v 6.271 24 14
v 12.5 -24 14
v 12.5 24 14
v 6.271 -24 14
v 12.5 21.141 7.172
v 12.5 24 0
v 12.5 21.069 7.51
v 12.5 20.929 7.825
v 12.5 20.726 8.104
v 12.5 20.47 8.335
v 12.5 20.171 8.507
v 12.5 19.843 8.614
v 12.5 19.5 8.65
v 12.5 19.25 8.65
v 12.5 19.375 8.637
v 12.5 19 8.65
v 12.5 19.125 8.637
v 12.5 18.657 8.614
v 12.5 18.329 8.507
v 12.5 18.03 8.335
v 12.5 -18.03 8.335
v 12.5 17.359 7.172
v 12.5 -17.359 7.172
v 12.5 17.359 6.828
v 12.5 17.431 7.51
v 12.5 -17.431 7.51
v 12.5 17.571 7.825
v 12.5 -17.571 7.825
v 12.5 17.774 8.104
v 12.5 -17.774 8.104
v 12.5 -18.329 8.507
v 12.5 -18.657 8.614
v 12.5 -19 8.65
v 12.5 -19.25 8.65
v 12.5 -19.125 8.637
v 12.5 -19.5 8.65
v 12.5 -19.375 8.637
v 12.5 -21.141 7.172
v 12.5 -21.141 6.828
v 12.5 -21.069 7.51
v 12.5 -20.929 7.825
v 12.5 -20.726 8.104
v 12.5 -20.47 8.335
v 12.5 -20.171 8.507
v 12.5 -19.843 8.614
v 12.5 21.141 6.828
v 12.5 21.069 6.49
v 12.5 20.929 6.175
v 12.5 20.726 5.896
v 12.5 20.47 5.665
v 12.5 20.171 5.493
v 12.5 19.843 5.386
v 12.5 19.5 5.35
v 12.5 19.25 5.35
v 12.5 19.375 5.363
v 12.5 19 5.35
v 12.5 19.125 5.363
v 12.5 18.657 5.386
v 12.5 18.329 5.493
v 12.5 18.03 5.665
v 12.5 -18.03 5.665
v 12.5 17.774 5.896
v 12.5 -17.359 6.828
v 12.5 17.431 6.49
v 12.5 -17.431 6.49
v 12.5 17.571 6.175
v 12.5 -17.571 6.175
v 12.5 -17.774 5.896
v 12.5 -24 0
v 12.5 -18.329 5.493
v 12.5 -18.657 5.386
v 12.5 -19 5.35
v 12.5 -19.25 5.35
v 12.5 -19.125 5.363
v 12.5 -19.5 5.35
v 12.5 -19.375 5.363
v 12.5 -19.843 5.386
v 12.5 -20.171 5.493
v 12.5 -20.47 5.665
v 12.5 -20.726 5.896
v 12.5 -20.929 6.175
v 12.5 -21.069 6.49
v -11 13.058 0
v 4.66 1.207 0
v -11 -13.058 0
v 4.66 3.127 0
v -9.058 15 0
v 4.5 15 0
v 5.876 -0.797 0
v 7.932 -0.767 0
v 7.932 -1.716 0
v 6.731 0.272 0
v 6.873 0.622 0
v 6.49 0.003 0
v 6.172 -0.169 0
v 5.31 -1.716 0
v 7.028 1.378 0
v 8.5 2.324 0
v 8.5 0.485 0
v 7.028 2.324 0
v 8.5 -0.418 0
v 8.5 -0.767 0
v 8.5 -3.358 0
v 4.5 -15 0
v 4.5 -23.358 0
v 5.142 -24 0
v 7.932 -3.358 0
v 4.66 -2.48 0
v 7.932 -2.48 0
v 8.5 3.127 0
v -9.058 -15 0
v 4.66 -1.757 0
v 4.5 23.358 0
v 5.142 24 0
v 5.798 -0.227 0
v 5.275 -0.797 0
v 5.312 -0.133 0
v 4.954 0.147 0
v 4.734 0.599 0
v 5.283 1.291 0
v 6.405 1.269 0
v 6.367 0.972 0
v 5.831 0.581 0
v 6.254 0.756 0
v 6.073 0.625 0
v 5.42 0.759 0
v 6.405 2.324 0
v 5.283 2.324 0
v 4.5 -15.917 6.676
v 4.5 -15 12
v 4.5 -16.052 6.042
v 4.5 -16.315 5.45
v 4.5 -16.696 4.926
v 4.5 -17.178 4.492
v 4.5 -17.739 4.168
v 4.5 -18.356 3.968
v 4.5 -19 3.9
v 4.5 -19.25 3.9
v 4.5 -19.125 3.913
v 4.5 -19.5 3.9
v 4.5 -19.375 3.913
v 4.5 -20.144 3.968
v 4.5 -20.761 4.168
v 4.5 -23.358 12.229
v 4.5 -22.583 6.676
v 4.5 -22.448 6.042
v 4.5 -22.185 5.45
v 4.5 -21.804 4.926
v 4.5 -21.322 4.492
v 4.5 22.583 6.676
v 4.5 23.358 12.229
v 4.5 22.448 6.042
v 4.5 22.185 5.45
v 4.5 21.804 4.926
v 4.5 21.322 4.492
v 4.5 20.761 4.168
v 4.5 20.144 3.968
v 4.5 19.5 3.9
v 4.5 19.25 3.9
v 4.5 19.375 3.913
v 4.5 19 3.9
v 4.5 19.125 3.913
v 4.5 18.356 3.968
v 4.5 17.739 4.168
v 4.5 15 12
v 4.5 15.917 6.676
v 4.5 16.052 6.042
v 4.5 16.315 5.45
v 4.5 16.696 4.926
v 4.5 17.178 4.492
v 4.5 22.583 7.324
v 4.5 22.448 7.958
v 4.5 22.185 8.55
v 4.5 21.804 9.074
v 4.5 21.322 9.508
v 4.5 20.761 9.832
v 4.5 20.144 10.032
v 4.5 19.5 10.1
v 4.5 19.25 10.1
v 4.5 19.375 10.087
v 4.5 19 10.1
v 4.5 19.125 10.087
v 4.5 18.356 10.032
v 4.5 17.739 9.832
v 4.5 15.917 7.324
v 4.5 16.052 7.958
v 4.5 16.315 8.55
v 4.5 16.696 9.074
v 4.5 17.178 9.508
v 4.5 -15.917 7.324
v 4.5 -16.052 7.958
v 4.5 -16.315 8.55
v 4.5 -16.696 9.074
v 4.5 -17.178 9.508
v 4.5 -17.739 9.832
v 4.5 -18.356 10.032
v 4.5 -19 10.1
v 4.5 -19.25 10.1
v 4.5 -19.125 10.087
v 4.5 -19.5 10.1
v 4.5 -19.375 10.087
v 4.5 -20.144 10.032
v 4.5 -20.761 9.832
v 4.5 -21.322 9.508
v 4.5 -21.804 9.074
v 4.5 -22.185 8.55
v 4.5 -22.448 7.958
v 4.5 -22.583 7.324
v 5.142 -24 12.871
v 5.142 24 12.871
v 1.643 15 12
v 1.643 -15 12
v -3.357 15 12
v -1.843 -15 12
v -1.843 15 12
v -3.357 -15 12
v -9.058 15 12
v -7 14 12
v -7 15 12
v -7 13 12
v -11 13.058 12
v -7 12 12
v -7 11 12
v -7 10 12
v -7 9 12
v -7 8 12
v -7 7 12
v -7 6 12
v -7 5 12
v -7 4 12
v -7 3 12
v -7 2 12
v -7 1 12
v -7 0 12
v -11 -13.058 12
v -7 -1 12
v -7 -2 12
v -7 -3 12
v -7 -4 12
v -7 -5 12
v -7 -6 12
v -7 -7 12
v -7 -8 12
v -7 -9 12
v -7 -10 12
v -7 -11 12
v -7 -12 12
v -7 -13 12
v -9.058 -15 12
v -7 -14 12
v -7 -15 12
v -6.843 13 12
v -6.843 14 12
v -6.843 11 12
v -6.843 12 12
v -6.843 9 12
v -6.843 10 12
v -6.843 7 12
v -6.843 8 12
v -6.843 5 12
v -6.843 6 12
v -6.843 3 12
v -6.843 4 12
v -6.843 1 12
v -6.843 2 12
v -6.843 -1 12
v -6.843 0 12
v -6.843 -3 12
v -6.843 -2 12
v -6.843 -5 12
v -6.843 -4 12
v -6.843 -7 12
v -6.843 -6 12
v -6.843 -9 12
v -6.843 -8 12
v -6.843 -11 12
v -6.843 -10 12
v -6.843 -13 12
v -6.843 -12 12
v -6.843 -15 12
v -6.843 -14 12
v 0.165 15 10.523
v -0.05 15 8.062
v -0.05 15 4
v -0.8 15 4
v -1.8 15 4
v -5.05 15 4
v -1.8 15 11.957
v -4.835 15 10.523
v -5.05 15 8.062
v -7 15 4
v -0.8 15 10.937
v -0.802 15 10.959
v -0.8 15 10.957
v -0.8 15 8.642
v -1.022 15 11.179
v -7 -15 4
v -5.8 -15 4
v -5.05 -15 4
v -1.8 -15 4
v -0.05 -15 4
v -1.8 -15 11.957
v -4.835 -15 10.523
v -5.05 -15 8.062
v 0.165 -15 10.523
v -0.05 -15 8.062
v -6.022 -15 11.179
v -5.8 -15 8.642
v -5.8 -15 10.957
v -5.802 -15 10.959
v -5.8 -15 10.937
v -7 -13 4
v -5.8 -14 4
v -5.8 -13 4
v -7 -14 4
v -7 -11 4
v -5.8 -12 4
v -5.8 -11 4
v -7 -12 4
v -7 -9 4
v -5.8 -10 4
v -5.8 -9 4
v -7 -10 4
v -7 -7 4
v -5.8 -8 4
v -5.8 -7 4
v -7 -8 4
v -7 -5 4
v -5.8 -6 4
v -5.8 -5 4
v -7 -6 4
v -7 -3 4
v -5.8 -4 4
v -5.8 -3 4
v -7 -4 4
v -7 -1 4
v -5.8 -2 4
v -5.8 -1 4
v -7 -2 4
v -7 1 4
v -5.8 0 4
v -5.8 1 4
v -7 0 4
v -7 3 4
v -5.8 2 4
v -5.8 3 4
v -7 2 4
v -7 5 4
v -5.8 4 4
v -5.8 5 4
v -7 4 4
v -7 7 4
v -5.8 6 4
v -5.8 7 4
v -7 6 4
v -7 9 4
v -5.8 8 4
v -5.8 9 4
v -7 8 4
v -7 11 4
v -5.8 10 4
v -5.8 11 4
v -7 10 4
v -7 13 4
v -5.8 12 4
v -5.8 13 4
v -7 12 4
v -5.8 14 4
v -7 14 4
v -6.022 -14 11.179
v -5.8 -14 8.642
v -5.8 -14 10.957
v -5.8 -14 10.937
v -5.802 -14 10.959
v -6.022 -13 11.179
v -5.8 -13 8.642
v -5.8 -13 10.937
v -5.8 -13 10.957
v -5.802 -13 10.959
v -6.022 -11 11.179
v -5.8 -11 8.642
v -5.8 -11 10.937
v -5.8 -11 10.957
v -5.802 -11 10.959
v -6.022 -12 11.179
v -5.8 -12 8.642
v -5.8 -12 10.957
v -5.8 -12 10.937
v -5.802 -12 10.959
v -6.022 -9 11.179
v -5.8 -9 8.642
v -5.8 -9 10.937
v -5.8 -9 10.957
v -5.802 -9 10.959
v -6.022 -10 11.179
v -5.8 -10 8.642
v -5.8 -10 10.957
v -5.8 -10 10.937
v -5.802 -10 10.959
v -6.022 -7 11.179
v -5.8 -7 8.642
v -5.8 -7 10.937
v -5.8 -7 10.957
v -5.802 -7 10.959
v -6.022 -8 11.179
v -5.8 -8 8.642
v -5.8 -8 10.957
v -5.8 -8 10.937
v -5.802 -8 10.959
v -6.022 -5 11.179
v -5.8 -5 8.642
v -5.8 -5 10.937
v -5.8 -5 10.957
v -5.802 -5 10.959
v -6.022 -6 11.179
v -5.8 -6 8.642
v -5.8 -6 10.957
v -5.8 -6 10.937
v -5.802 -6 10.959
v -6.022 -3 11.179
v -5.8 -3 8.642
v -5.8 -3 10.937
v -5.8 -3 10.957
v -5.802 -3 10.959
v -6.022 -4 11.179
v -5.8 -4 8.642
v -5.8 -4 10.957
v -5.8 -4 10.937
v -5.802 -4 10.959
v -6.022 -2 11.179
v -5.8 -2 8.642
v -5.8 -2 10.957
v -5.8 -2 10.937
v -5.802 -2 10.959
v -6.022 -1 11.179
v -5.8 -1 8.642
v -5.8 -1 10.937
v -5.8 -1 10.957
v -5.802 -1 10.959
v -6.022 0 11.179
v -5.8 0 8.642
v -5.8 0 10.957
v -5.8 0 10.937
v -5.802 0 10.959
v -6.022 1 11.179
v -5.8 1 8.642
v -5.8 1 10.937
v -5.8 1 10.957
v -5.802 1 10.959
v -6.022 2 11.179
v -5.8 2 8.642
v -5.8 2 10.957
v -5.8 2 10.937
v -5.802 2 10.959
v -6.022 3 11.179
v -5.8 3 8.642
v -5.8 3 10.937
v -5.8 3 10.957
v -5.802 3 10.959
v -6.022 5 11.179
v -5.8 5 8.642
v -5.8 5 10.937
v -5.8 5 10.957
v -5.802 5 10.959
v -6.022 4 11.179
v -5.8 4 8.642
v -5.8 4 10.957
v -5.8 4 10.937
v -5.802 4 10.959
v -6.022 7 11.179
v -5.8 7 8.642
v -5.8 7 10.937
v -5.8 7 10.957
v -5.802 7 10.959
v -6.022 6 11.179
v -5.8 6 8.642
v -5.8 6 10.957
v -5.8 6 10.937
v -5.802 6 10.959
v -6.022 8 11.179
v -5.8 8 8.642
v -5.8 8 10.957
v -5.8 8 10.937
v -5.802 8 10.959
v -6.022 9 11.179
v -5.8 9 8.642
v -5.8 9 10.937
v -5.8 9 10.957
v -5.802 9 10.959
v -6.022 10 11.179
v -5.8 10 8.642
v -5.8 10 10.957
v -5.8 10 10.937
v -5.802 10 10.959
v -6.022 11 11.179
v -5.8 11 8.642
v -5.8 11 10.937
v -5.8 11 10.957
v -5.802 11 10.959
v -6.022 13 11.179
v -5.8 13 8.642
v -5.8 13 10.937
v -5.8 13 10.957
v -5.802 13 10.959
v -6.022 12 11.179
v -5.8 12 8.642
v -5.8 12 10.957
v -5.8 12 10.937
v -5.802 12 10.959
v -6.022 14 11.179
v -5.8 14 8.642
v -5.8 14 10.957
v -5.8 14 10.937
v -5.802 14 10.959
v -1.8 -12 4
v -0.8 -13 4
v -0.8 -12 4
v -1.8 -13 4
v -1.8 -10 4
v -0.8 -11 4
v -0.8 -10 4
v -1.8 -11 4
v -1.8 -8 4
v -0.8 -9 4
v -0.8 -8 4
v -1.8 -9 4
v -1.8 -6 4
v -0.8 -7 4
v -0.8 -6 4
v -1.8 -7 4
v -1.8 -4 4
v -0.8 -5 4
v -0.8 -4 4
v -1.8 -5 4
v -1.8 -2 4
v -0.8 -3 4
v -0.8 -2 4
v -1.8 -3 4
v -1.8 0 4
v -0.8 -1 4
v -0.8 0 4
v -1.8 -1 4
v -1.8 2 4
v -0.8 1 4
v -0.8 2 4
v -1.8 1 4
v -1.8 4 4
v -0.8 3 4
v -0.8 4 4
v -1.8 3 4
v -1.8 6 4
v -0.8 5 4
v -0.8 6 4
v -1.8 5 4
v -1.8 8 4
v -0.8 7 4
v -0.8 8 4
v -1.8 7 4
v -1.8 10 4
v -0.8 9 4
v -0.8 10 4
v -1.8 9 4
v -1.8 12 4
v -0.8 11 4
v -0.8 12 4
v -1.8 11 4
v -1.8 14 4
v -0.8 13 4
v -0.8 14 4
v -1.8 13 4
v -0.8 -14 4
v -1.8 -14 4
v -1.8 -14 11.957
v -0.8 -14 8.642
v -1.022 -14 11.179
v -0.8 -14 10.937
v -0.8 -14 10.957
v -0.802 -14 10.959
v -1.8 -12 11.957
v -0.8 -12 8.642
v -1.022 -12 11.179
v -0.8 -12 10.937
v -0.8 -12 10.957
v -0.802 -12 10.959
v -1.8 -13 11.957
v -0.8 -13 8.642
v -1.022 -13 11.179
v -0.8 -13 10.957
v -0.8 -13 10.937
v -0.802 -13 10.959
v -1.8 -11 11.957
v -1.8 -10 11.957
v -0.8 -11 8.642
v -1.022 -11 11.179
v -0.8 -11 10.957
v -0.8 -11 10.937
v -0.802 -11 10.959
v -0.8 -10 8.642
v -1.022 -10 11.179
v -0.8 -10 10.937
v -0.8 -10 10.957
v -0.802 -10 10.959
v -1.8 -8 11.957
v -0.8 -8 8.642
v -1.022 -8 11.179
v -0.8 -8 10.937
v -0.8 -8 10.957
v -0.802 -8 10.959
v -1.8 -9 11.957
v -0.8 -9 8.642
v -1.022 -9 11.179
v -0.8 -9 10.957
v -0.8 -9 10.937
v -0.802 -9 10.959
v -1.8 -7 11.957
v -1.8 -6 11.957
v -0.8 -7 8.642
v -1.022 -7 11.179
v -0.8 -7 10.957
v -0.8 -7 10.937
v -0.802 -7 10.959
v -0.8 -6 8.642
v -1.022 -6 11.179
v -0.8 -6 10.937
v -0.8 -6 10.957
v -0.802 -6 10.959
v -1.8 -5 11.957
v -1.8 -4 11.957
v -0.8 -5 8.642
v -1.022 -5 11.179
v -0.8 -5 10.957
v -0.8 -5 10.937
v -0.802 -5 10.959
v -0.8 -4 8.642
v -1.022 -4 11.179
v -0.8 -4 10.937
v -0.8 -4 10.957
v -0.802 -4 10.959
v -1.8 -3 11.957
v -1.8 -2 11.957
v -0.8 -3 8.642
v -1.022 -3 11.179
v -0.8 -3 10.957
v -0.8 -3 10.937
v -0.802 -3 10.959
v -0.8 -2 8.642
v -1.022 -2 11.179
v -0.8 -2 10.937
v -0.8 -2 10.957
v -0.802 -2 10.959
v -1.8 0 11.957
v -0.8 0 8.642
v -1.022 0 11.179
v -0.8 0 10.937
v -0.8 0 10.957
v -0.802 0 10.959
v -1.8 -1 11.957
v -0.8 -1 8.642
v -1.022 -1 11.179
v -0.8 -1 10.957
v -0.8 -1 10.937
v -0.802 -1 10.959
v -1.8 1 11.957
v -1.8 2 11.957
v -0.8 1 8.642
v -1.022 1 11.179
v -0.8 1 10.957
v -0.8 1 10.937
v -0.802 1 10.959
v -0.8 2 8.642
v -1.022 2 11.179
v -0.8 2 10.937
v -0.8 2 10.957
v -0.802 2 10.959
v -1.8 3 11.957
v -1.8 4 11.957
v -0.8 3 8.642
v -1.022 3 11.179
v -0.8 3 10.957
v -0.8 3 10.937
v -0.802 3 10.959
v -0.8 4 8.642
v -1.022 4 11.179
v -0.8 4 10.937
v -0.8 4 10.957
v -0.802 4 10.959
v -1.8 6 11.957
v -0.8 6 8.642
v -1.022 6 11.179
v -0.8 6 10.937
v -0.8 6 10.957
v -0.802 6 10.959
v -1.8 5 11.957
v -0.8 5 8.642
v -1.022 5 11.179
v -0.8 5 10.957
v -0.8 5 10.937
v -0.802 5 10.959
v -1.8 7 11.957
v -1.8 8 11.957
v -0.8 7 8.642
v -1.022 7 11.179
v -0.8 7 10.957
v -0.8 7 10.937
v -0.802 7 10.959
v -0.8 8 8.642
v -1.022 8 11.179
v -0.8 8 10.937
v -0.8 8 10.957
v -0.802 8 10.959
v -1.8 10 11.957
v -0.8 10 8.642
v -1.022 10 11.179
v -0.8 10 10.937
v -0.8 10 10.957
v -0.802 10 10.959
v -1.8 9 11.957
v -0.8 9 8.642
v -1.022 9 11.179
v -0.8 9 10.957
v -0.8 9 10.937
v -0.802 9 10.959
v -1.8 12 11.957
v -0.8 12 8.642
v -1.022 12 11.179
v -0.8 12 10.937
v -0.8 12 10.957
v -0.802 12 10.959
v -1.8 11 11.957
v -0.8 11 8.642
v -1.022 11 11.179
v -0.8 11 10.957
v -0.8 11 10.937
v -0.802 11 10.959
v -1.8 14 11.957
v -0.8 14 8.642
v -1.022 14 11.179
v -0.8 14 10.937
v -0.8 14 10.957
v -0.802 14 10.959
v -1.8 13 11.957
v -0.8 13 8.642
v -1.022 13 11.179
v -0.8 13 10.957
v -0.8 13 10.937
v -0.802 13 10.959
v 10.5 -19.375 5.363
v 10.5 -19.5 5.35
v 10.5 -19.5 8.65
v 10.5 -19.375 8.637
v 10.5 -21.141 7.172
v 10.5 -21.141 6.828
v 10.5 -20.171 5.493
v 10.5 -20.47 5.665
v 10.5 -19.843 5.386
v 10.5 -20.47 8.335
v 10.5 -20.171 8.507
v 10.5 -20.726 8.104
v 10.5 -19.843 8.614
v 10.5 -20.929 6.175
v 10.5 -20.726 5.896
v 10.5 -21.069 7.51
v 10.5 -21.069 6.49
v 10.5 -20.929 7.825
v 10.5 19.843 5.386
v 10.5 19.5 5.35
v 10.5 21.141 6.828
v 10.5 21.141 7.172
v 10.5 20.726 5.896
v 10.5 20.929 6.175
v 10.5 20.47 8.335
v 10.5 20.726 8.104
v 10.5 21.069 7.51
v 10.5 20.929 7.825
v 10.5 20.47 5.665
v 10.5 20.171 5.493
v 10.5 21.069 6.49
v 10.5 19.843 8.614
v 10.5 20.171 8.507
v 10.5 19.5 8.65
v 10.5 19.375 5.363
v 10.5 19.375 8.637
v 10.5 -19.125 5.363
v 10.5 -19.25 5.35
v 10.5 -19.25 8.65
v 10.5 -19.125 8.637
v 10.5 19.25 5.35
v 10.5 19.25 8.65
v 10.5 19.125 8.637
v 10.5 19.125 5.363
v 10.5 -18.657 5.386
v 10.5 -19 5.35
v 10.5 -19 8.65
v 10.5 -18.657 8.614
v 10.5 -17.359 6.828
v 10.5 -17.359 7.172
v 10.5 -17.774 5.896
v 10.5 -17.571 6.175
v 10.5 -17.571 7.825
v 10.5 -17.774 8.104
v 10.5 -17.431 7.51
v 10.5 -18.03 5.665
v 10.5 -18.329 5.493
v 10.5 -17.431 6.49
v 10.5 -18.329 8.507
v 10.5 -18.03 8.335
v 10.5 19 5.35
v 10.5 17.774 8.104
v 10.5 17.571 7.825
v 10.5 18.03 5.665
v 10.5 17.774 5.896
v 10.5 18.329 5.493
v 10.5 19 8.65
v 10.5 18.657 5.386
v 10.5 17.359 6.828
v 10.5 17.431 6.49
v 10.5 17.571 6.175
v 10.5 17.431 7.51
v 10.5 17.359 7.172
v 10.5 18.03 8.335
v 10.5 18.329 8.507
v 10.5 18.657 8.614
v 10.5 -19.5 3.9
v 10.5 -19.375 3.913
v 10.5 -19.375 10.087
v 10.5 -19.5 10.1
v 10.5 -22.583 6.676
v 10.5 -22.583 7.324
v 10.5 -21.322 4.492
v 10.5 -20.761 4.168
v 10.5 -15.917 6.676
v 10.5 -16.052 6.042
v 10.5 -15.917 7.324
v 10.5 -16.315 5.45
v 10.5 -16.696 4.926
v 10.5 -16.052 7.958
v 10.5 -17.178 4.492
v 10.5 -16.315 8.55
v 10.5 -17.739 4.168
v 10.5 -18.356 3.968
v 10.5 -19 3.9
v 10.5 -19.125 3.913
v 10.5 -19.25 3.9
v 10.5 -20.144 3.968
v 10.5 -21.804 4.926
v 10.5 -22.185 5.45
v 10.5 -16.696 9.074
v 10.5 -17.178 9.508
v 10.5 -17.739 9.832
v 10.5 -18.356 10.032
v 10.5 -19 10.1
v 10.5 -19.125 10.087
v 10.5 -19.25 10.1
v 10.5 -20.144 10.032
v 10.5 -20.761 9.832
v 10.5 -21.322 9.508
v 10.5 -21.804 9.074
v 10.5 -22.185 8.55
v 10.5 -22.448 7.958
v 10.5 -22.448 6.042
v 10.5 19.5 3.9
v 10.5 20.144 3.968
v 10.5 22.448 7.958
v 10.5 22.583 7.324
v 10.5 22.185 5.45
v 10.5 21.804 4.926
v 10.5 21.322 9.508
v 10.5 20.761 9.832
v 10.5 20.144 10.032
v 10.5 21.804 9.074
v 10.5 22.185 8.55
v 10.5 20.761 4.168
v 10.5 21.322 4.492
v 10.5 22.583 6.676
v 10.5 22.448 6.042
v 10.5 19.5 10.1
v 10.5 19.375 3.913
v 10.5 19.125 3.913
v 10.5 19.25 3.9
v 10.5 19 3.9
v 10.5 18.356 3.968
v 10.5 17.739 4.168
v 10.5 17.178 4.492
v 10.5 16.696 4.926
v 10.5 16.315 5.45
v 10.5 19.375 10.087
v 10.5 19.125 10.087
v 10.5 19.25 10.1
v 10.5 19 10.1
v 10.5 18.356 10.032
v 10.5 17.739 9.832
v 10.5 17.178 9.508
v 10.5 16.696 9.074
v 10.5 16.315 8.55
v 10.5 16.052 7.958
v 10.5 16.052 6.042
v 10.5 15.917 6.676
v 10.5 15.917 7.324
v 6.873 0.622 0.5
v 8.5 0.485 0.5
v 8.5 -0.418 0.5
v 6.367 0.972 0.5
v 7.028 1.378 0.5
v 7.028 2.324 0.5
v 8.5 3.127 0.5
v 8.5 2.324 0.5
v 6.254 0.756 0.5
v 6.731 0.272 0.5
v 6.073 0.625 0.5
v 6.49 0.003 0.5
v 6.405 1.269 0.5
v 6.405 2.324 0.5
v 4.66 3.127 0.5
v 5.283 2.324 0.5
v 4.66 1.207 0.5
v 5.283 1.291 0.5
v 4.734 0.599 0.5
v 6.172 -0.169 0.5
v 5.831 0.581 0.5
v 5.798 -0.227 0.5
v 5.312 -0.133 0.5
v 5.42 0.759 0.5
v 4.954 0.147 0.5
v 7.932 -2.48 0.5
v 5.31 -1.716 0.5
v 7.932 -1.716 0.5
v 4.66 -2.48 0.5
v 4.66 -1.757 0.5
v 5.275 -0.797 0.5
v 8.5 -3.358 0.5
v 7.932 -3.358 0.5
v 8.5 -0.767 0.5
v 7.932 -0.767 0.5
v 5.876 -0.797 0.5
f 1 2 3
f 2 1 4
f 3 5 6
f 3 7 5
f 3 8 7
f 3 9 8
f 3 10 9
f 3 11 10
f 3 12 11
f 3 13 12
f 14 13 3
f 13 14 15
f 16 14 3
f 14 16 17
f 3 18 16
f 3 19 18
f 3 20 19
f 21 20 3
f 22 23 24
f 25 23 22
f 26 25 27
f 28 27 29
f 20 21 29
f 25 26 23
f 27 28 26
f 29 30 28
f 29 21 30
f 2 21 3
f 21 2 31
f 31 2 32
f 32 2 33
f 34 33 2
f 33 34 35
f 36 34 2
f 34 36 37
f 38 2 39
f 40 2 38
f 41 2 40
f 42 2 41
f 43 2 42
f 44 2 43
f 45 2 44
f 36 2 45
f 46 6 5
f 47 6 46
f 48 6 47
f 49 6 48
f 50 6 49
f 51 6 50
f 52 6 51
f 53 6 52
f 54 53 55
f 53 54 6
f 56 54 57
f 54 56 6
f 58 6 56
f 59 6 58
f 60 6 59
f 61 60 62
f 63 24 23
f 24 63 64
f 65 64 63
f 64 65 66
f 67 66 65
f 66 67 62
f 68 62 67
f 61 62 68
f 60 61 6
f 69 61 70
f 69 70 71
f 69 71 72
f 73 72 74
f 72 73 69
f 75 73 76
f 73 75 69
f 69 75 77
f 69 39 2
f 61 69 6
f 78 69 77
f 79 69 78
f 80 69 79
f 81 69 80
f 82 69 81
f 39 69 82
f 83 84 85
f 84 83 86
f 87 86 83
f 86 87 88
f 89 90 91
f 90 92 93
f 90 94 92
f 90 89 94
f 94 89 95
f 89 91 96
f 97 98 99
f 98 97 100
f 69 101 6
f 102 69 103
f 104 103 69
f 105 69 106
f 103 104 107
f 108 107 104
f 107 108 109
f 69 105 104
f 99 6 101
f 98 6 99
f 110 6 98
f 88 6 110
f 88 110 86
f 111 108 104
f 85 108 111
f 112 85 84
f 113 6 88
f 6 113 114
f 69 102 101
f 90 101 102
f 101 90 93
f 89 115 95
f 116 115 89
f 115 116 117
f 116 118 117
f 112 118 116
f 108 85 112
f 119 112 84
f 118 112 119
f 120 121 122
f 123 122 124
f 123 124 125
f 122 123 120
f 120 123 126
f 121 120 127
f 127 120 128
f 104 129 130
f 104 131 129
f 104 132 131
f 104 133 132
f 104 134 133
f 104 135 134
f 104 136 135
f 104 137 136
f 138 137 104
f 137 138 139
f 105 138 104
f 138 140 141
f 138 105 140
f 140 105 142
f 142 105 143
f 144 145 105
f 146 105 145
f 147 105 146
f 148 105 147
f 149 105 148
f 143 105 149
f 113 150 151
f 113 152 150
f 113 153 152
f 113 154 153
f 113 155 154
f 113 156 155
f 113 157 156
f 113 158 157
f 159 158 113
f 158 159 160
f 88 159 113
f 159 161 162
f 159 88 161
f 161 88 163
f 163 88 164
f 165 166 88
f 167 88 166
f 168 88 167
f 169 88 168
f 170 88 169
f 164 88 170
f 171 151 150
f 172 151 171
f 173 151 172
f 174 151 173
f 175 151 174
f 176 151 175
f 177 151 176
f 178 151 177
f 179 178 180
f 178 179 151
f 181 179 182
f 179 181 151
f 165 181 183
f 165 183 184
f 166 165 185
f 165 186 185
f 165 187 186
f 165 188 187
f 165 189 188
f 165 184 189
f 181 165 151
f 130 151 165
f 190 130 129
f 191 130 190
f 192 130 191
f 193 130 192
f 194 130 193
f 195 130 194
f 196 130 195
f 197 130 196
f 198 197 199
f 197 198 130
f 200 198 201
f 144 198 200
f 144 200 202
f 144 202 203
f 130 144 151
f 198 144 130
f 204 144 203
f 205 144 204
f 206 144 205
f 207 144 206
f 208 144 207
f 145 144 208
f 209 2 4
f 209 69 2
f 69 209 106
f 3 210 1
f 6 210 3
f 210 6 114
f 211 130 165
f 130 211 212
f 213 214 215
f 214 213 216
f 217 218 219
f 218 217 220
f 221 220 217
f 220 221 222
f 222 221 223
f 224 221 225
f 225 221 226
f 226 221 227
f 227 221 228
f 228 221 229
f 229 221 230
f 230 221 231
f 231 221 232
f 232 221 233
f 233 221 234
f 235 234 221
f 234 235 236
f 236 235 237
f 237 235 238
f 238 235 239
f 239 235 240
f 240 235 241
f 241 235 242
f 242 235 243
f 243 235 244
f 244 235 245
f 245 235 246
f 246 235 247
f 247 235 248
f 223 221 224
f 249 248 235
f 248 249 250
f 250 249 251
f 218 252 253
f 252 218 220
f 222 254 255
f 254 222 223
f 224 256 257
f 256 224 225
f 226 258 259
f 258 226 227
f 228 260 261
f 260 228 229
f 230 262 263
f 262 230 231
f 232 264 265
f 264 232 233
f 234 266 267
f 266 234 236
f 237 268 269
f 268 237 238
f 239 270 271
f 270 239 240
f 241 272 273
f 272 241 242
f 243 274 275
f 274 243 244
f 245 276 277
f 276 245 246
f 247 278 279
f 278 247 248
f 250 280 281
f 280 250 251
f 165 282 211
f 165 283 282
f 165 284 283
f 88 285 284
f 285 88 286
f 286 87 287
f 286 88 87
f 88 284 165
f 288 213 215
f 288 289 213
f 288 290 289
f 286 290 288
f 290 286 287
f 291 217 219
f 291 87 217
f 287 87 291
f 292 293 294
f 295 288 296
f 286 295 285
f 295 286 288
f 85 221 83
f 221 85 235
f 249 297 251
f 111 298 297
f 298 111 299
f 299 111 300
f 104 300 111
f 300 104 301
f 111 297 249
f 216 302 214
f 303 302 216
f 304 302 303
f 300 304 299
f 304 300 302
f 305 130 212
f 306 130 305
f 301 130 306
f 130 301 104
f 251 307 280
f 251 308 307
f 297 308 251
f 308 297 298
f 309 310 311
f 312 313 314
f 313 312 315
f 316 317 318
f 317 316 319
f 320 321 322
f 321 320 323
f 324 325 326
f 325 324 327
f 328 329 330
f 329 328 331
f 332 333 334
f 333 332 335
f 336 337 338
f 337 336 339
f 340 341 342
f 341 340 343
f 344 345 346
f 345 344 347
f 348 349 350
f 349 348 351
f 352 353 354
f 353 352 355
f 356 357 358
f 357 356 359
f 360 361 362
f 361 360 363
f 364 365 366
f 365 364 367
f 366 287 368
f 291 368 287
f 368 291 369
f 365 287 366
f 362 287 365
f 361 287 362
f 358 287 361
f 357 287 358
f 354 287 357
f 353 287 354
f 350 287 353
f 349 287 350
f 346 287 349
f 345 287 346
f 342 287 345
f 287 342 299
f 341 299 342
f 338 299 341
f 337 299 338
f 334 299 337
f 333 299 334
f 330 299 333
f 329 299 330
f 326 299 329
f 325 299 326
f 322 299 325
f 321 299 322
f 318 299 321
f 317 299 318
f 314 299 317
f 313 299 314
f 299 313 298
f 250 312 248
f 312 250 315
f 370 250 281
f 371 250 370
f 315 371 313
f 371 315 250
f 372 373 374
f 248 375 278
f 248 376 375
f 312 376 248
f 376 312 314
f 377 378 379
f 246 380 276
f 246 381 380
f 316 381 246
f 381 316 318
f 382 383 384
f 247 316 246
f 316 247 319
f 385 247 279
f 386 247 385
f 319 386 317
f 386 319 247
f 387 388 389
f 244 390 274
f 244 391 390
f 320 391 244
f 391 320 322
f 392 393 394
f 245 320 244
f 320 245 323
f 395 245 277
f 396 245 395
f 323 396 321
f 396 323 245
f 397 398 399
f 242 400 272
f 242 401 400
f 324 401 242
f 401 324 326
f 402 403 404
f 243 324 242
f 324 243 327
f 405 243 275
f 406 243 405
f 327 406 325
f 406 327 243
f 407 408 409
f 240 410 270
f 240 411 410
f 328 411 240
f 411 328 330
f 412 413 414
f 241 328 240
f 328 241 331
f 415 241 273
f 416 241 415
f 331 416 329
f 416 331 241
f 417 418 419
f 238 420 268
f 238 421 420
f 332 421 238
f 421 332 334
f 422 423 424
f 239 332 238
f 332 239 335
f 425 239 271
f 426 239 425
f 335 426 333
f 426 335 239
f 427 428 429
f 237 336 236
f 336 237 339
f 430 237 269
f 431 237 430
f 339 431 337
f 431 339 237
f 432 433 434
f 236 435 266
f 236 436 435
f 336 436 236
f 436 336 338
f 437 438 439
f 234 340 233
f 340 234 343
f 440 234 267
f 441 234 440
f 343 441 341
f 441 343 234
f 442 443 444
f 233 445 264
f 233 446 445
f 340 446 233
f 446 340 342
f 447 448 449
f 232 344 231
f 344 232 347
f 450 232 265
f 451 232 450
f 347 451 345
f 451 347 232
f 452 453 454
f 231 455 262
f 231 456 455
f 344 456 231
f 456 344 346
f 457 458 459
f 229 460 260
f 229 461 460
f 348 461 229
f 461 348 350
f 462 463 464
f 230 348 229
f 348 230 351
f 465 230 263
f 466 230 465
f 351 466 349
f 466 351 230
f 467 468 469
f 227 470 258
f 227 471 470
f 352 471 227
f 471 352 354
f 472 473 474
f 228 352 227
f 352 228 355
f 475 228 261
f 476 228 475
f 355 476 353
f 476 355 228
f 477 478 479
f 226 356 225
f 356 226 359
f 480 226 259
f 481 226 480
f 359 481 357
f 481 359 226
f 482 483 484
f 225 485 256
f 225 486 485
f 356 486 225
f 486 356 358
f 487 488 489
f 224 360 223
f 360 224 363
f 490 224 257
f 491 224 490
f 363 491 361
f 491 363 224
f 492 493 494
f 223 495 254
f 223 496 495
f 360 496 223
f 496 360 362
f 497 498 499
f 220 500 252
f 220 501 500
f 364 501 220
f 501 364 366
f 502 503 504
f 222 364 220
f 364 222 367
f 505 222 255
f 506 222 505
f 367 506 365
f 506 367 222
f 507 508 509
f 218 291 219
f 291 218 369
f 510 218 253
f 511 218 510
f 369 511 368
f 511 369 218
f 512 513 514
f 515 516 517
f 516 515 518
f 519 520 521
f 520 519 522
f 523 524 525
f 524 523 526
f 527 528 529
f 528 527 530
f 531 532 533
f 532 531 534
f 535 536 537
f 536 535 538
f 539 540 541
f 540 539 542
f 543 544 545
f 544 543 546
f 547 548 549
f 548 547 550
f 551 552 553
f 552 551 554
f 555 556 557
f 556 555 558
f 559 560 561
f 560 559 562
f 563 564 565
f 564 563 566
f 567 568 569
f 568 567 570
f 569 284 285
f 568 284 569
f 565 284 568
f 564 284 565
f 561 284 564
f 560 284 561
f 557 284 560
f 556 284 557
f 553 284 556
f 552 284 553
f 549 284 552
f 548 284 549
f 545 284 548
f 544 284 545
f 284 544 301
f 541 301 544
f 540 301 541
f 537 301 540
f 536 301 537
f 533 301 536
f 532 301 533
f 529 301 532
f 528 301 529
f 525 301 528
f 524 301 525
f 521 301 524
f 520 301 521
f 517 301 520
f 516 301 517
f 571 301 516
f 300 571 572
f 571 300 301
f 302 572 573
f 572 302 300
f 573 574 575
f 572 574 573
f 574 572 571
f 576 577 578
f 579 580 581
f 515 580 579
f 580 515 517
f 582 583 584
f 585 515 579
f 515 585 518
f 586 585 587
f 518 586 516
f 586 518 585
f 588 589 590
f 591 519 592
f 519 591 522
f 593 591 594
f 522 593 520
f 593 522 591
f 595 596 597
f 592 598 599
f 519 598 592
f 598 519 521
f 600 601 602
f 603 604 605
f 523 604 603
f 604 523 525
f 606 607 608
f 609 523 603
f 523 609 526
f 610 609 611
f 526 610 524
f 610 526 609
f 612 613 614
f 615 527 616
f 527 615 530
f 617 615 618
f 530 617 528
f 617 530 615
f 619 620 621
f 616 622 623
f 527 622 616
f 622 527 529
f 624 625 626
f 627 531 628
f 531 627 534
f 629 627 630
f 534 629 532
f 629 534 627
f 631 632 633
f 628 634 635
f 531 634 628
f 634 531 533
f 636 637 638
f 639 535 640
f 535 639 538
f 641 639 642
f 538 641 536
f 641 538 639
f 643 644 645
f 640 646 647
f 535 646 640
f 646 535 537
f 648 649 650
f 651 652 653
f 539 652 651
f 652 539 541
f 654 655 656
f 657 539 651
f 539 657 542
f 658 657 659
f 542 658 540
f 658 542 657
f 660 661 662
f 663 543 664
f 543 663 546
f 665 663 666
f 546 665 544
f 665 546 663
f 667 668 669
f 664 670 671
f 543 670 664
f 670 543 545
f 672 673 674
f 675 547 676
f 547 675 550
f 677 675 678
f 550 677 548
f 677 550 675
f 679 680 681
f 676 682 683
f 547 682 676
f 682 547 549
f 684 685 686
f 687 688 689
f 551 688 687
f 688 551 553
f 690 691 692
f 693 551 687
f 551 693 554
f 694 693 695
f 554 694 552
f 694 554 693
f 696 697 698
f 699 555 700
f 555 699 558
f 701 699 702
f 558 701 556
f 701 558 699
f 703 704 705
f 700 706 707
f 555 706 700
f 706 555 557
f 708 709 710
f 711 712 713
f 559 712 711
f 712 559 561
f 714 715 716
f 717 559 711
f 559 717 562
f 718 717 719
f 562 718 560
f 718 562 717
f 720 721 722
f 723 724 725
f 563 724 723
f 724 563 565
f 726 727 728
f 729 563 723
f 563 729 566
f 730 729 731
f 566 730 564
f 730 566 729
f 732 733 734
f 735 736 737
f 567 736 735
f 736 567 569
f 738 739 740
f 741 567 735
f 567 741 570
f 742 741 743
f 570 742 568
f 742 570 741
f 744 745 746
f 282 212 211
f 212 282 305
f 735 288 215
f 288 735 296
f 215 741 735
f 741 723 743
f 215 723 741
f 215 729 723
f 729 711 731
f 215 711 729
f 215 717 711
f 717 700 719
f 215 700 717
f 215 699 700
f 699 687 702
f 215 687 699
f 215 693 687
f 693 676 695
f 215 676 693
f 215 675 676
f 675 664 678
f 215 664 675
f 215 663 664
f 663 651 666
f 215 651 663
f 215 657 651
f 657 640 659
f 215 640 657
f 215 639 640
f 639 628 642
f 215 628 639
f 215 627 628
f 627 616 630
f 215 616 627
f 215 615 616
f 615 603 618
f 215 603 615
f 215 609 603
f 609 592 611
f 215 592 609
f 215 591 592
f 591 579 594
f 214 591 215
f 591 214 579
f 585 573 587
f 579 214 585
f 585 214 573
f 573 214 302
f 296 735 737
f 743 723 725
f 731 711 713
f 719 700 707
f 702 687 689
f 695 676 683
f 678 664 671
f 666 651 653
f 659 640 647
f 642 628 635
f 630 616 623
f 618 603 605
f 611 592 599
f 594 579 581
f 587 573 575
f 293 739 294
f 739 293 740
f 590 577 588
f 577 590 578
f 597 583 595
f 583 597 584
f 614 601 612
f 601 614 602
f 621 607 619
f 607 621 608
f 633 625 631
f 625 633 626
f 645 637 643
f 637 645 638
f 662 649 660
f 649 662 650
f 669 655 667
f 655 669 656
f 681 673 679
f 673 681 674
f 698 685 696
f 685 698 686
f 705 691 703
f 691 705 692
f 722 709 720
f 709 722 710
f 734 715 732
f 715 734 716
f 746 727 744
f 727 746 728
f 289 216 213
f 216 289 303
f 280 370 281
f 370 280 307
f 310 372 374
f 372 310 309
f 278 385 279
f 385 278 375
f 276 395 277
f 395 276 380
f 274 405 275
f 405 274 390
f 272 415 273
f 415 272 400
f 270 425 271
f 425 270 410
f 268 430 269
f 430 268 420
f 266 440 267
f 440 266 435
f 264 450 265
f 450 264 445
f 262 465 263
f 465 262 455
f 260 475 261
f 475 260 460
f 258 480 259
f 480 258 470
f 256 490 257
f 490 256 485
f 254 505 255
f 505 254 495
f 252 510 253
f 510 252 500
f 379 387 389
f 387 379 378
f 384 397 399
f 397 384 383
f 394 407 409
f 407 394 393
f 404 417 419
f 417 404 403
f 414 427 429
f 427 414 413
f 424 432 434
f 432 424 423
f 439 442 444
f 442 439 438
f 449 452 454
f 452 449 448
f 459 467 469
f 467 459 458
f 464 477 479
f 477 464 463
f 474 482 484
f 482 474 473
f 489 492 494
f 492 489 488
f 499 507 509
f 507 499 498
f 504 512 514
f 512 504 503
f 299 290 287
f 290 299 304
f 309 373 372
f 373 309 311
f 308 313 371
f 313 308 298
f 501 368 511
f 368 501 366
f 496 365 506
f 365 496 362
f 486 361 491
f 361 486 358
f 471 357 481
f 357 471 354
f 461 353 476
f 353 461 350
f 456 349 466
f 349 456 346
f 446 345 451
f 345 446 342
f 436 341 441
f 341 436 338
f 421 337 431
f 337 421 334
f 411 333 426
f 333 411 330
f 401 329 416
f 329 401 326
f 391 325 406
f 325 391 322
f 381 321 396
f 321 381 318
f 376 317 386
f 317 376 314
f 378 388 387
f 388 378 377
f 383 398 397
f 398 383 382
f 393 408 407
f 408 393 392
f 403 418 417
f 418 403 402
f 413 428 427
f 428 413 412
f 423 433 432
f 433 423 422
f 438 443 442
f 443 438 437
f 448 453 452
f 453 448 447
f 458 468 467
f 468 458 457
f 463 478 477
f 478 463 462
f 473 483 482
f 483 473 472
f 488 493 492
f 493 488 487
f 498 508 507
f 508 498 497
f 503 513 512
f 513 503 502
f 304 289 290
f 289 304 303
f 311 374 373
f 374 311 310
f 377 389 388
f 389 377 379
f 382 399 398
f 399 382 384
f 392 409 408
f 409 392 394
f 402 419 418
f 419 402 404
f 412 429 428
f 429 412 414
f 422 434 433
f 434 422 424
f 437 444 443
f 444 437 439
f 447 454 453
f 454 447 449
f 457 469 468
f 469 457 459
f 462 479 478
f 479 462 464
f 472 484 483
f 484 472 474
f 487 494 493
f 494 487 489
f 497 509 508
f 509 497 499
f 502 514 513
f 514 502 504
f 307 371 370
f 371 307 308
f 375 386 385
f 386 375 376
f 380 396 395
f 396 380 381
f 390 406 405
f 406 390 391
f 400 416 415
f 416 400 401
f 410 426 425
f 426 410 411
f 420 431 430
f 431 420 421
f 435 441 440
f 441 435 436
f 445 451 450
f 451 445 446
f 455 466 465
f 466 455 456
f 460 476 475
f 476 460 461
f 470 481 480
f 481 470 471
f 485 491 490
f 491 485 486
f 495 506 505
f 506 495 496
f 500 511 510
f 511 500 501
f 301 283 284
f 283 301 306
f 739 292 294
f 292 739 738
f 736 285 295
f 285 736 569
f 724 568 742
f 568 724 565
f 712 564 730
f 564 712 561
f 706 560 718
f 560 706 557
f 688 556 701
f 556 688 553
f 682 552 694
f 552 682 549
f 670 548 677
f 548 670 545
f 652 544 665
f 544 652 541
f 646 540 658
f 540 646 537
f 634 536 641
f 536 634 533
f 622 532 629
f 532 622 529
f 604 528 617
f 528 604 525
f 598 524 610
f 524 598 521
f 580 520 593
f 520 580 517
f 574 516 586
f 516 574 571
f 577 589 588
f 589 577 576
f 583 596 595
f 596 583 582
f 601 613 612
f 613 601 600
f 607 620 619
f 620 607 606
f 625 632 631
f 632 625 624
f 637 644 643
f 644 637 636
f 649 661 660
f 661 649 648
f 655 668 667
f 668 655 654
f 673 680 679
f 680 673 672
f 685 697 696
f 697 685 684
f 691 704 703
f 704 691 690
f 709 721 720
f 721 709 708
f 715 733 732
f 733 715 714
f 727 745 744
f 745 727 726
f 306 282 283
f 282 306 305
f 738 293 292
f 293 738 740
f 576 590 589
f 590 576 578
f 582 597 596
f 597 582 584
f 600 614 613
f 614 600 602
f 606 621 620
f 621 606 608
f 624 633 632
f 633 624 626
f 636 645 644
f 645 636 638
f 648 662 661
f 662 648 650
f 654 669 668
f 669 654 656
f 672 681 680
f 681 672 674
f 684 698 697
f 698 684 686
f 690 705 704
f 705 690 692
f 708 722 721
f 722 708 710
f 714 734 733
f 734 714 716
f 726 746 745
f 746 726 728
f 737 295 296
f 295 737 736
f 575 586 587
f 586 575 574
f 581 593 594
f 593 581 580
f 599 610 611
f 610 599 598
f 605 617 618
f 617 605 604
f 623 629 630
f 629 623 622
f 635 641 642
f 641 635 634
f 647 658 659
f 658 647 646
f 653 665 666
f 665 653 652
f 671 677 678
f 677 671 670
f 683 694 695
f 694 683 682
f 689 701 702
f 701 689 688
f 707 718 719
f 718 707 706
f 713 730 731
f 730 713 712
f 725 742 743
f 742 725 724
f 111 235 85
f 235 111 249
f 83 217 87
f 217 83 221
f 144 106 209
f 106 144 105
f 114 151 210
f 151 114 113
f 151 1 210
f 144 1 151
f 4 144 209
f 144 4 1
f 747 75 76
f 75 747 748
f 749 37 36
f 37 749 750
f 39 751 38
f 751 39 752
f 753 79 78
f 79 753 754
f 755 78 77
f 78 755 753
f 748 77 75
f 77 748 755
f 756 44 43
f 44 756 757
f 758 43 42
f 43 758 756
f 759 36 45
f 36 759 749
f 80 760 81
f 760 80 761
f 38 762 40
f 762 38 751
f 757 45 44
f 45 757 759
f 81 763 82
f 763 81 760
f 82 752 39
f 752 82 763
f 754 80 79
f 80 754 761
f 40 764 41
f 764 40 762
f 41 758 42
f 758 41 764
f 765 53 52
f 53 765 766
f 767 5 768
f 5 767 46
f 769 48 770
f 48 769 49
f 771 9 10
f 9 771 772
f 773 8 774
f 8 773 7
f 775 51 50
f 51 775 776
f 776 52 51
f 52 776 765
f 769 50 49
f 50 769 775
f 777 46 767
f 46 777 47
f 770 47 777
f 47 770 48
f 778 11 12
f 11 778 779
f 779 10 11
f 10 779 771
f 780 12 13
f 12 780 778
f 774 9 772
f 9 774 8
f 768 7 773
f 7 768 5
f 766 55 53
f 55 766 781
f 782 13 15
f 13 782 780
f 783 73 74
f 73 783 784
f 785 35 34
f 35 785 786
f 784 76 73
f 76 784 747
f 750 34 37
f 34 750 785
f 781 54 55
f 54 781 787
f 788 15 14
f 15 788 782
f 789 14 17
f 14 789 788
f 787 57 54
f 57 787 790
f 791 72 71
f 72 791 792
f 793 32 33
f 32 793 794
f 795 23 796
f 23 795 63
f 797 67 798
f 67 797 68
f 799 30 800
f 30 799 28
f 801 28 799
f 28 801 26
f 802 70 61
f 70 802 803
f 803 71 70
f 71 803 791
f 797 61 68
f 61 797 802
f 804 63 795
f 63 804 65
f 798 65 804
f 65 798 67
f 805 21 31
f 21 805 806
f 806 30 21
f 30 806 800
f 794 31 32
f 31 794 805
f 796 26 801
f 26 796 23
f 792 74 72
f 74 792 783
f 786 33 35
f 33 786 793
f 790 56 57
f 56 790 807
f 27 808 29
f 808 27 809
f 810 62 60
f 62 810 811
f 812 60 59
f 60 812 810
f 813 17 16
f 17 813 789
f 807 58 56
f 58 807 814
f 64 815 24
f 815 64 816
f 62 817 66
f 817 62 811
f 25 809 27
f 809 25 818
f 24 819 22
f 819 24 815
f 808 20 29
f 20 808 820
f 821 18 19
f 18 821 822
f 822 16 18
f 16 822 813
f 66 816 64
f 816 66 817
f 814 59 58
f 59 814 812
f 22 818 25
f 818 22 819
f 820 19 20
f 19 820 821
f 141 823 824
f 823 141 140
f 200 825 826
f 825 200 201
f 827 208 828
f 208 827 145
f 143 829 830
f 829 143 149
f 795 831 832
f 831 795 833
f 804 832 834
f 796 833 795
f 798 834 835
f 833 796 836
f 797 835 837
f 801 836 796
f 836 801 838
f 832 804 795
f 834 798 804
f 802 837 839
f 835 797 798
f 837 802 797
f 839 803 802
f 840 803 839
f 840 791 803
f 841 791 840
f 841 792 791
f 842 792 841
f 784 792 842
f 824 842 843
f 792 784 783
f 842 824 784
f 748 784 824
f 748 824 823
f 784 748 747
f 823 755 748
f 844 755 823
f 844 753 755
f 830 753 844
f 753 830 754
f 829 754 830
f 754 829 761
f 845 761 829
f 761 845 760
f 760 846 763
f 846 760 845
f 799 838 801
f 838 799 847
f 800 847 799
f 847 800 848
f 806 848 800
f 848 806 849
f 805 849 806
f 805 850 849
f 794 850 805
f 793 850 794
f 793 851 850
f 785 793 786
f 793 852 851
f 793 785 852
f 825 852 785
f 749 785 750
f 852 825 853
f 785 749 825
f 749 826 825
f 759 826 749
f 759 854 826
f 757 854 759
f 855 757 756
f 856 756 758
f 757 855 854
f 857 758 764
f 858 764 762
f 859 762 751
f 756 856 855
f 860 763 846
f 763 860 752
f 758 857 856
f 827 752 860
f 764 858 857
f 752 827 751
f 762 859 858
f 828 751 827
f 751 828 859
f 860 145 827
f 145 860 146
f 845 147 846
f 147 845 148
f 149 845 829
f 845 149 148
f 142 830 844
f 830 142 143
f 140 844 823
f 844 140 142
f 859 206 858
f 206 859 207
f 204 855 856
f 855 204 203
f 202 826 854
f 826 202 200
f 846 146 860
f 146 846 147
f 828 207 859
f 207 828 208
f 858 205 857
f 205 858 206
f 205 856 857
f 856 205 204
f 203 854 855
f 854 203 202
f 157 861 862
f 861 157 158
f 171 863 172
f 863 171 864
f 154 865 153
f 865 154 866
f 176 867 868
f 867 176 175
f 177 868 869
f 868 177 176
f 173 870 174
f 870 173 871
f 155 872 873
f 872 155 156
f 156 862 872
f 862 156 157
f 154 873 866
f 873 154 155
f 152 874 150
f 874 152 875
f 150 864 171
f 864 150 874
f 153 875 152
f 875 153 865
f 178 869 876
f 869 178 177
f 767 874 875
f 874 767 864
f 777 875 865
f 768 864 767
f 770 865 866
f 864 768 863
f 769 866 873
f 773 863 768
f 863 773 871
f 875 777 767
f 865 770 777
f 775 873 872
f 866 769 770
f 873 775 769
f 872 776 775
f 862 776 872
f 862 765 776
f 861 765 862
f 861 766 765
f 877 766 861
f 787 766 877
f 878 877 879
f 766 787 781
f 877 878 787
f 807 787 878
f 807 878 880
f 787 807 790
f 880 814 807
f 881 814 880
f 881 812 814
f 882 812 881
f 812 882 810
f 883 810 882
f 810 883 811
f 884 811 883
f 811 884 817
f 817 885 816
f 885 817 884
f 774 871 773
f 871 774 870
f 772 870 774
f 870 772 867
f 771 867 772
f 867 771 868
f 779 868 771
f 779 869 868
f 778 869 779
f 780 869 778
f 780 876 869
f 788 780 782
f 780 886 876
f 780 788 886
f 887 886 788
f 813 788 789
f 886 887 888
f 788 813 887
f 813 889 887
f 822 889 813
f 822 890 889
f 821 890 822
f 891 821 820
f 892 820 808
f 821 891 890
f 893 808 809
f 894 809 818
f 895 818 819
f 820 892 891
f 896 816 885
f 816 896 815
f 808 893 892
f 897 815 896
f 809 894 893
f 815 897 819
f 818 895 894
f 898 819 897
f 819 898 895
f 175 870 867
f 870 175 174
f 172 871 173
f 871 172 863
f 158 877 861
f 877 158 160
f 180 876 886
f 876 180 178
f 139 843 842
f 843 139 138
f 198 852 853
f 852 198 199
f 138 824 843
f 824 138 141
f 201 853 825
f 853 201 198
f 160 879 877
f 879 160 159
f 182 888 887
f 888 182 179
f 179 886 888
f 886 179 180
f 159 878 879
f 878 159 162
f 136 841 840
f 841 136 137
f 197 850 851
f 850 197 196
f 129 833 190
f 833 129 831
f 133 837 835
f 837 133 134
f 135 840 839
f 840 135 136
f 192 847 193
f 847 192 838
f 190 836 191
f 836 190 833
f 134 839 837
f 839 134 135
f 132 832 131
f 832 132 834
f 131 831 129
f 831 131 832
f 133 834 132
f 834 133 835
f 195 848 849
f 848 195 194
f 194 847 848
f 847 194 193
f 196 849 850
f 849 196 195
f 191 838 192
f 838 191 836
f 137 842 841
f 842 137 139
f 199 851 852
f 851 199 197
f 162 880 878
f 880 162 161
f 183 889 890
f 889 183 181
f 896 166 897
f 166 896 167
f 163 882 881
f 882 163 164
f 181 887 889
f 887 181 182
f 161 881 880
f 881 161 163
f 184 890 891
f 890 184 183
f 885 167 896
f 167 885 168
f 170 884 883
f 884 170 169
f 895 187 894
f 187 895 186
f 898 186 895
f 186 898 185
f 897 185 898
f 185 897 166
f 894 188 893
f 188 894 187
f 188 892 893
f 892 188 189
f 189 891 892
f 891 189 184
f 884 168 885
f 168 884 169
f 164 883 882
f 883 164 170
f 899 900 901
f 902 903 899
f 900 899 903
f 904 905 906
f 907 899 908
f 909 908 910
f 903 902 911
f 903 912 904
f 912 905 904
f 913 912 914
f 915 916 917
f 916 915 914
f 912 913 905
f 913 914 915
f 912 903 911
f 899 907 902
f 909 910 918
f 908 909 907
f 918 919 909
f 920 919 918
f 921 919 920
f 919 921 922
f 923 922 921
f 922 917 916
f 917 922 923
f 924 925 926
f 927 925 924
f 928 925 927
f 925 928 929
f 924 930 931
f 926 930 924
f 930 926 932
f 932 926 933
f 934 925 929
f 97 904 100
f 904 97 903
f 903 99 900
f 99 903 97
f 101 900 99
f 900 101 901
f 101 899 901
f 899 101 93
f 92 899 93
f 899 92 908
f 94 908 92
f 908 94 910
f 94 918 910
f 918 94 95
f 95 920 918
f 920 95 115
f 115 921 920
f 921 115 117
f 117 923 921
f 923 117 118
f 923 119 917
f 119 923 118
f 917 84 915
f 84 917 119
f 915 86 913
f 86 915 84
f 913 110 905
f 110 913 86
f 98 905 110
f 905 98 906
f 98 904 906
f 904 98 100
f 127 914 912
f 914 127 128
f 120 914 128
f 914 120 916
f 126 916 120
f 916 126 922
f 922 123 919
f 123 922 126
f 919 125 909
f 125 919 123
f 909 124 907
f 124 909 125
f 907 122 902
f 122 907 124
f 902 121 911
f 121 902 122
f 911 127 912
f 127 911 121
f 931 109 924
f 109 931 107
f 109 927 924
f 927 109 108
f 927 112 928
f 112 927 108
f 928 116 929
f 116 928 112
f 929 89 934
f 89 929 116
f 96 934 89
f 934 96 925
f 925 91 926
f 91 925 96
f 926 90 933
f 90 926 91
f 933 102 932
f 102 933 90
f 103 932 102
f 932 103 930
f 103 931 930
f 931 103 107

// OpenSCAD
// PRUSA iteration4
// Y belt holder
// GNU GPL v3
// Josef Průša <iam@josefprusa.cz> and contributors
// http://www.reprap.org/wiki/Prusa_Mendel
// http://prusamendel.org

module y_belt_holder()
{

    difference()
    {
        // base block
        union()
        {
            translate([-7,-24,44.5]) cube([14,48,8]);
            translate([-5,-15,29]) cube([12,30,17]);
        }

        // belt entry 
        translate([-7.5,-16,39.9]) rotate([0,45,0]) cube([3,32,3]);
        translate([-7.5,-16,34.9]) rotate([0,45,0]) cube([3,32,3]);
        
        // lower belt slot
        translate([-8.5,-16,34.2]) cube([11.5,32,0.75]);
        translate([-8.5,-16,35.4]) rotate([0,5,0]) cube([11.5,32,0.2]);
        translate([-8.5,-16,33.6]) rotate([0,-5,0]) cube([11.5,32,0.2]);
        for (_step =[-16:2:16])
        {
            translate([-8.5,_step,33]) cube([11.5,1,1.5]);
        }
        
        // upper belt slot
        translate([-8.5,-16,39.2]) cube([11.5,32,0.75]);
        translate([-8.5,-16,40.4]) rotate([0,5,0]) cube([11.5,32,0.2]);
        translate([-8.5,-16,38.6]) rotate([0,-5,0]) cube([11.5,32,0.2]);
        for (_step =[-17:2:16])
        {
            translate([-8.5,_step,38.2]) cube([11.5,1,1.5]);
        }
        
        // nice edges
        translate([-8,-20,21.8]) rotate([45,0,0]) cube([16,10,10]);
        translate([-8,20,21.8]) rotate([45,0,0]) cube([16,10,10]);

        translate([-8,-30,37]) rotate([45,0,0]) cube([16,10,10]);
        translate([-8,30,37]) rotate([45,0,0]) cube([16,10,10]);
        translate([-12.2,-30,44.4]) rotate([0,45,0]) cube([5,60,5]);
        
        // mounting screw holes
        translate([0,-19.50,40]) cylinder( h=30, r=1.65, $fn=30 );
        translate([0,19.50,40]) cylinder( h=30, r=1.65, $fn=30 );
        translate([0,-19.25,40]) cylinder( h=30, r=1.65, $fn=30 );
        translate([0,19.25,40]) cylinder( h=30, r=1.65, $fn=30 );
        translate([0,-19.0,40]) cylinder( h=30, r=1.65, $fn=30 );
        translate([0,19.0,40]) cylinder( h=30, r=1.65, $fn=30 );
        
        translate([0,-19.5,43.5]) cylinder( h=7, r=3.1, $fn=30 );
        translate([0,19.5,43.5]) cylinder( h=7, r=3.1, $fn=30 );
        translate([0,-19.25,43.5]) cylinder( h=7, r=3.1, $fn=30 );
        translate([0,19.25,43.5]) cylinder( h=7, r=3.1, $fn=30 );
        translate([0,-19.0,43.5]) cylinder( h=7, r=3.1, $fn=30 );
        translate([0,19.0,43.5]) cylinder( h=7, r=3.1, $fn=30 );
        
    
    }
 

}

difference()
{
    translate([-40,0,7]) rotate([0,90,0]) y_belt_holder();
    //version   
    translate([8.5,3.5,0.5]) rotate([0,180,90]) linear_extrude(height = 0.6) 
    { text("R1",font = "helvetica:style=Bold", size=4, center=true); }
}
    
